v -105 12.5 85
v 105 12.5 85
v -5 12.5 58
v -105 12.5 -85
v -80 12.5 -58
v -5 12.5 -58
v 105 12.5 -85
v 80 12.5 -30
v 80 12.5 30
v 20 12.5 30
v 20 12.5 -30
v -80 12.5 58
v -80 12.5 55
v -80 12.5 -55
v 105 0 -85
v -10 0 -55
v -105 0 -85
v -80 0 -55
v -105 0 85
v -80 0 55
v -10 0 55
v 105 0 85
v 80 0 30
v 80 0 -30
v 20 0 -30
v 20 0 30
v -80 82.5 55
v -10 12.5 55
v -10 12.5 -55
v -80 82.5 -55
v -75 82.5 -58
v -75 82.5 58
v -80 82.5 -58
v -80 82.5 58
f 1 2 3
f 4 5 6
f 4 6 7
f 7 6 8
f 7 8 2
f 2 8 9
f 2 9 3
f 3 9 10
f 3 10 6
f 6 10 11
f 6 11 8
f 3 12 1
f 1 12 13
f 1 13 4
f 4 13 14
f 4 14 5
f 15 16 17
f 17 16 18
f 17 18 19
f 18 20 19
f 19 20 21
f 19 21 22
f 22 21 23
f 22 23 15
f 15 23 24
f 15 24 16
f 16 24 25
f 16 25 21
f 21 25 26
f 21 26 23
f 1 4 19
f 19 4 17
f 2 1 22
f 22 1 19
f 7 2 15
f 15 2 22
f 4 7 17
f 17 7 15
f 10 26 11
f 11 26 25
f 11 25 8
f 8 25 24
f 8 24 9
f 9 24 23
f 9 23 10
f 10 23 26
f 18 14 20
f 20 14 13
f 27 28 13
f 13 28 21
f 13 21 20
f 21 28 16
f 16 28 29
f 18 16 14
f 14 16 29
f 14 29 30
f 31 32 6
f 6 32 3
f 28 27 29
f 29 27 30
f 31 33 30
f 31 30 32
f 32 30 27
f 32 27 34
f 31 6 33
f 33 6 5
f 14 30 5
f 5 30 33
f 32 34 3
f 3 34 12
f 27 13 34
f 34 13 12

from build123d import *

# Parameters (mm, degrees)
SKETCH_1_W          = 210
SKETCH_1_H          = 170
EXTRUDE_1_DEPTH     = 12.5
SKETCH_2_W          = 60
SKETCH_2_H          = 60
CUT_EXTRUDE_1_DEPTH = 15
SKETCH_3_W          = 70
SKETCH_3_H          = 110
CUT_EXTRUDE_4_DEPTH = 20
EXTRUDE_4_DEPTH     = 5
EXTRUDE_6_DEPTH     = 3
EXTRUDE_7_DEPTH     = 3
EXTRUDE_8_DEPTH     = 3
EXTRUDE_9_DEPTH     = 3


with BuildPart() as part:
    # Эскиз1 → Бобышка-Вытянуть1 (new body)
    with BuildSketch(Plane(origin=(0, 0, 0), x_dir=(1, 0, 0), z_dir=(0, 1, 0))):
        Rectangle(SKETCH_1_W, SKETCH_1_H)
    extrude(amount=EXTRUDE_1_DEPTH)

    # Эскиз2 → Вырез-Вытянуть1 (cut)
    with BuildSketch(Plane(origin=(0, 12.5, 0), x_dir=(1, 0, 0), z_dir=(0, 1, 0))):
        with Locations((50, 0)):
            Rectangle(SKETCH_2_W, SKETCH_2_H)
    extrude(amount=-CUT_EXTRUDE_1_DEPTH, mode=Mode.SUBTRACT)

    # Эскиз3 → Вырез-Вытянуть4 (cut)
    with BuildSketch(Plane(origin=(0, 0, 0), x_dir=(1, 0, 0), z_dir=(0, 1, 0))):
        with Locations((-45, 0)):
            Rectangle(SKETCH_3_W, SKETCH_3_H)
    extrude(amount=CUT_EXTRUDE_4_DEPTH, mode=Mode.SUBTRACT)

    # Sketch 1 2 → Бобышка-Вытянуть4 (add, along a direction that is not the sketch's normal)
    with BuildSketch(Plane(origin=(-10, 12.5, -55), x_dir=(-0.47301616487964127, 0.4730161648796364, 0.7433111162394362), z_dir=(0.7071067811865439, 0.7071067811865512, 0))):
        Polygon((0, 0), (81.764222786, 73.584046315), (147.986485869, 0), (66.222263083, -73.584046315), align=None)
    extrude(amount=EXTRUDE_4_DEPTH, dir=(1, 0, 0))

    # Sketch 3 2 → Бобышка-Вытянуть6 (add)
    with BuildSketch(Plane(origin=(-7.5, 12.5, -55), x_dir=(-0.7194014606174125, 0.6945945136995638, 0), z_dir=(0, 0, 1))):
        Polygon((0, 0), (52.156605895, 50.358102243), (100.778221854, 0), align=None)
    extrude(amount=-EXTRUDE_6_DEPTH)

    # Sketch 4 → Бобышка-Вытянуть7 (add)
    with BuildSketch(Plane(origin=(-7.5, 12.5, 55), x_dir=(-0.7194014606174126, 0.6945945136995636, 0), z_dir=(0, 0, 1))):
        Polygon((0, 0), (100.778221854, 0), (52.156605895, 50.358102243), align=None)
    extrude(amount=EXTRUDE_7_DEPTH)

    # Эскиз7 → Бобышка-Вытянуть8 (add)
    with BuildSketch(Plane(origin=(0, 0, -55), x_dir=(-1, 0, 0), z_dir=(0, 0, -1))):
        Polygon((5, 12.5), (7.5, 12.5), (80, 82.5), (75, 82.5), align=None)
    extrude(amount=EXTRUDE_8_DEPTH)

    # Sketch 5 → Бобышка-Вытянуть9 (add)
    with BuildSketch(Plane(origin=(-5, 12.5, 55), x_dir=(-0.7310552682428726, 0.6823182503600075, 0), z_dir=(0, 0, -1))):
        Polygon((0, 0), (1.827638171, -1.705795626), (102.591422643, 0), (98.936146302, 3.411591252), align=None)
    extrude(amount=-EXTRUDE_9_DEPTH)


solid = part.part
